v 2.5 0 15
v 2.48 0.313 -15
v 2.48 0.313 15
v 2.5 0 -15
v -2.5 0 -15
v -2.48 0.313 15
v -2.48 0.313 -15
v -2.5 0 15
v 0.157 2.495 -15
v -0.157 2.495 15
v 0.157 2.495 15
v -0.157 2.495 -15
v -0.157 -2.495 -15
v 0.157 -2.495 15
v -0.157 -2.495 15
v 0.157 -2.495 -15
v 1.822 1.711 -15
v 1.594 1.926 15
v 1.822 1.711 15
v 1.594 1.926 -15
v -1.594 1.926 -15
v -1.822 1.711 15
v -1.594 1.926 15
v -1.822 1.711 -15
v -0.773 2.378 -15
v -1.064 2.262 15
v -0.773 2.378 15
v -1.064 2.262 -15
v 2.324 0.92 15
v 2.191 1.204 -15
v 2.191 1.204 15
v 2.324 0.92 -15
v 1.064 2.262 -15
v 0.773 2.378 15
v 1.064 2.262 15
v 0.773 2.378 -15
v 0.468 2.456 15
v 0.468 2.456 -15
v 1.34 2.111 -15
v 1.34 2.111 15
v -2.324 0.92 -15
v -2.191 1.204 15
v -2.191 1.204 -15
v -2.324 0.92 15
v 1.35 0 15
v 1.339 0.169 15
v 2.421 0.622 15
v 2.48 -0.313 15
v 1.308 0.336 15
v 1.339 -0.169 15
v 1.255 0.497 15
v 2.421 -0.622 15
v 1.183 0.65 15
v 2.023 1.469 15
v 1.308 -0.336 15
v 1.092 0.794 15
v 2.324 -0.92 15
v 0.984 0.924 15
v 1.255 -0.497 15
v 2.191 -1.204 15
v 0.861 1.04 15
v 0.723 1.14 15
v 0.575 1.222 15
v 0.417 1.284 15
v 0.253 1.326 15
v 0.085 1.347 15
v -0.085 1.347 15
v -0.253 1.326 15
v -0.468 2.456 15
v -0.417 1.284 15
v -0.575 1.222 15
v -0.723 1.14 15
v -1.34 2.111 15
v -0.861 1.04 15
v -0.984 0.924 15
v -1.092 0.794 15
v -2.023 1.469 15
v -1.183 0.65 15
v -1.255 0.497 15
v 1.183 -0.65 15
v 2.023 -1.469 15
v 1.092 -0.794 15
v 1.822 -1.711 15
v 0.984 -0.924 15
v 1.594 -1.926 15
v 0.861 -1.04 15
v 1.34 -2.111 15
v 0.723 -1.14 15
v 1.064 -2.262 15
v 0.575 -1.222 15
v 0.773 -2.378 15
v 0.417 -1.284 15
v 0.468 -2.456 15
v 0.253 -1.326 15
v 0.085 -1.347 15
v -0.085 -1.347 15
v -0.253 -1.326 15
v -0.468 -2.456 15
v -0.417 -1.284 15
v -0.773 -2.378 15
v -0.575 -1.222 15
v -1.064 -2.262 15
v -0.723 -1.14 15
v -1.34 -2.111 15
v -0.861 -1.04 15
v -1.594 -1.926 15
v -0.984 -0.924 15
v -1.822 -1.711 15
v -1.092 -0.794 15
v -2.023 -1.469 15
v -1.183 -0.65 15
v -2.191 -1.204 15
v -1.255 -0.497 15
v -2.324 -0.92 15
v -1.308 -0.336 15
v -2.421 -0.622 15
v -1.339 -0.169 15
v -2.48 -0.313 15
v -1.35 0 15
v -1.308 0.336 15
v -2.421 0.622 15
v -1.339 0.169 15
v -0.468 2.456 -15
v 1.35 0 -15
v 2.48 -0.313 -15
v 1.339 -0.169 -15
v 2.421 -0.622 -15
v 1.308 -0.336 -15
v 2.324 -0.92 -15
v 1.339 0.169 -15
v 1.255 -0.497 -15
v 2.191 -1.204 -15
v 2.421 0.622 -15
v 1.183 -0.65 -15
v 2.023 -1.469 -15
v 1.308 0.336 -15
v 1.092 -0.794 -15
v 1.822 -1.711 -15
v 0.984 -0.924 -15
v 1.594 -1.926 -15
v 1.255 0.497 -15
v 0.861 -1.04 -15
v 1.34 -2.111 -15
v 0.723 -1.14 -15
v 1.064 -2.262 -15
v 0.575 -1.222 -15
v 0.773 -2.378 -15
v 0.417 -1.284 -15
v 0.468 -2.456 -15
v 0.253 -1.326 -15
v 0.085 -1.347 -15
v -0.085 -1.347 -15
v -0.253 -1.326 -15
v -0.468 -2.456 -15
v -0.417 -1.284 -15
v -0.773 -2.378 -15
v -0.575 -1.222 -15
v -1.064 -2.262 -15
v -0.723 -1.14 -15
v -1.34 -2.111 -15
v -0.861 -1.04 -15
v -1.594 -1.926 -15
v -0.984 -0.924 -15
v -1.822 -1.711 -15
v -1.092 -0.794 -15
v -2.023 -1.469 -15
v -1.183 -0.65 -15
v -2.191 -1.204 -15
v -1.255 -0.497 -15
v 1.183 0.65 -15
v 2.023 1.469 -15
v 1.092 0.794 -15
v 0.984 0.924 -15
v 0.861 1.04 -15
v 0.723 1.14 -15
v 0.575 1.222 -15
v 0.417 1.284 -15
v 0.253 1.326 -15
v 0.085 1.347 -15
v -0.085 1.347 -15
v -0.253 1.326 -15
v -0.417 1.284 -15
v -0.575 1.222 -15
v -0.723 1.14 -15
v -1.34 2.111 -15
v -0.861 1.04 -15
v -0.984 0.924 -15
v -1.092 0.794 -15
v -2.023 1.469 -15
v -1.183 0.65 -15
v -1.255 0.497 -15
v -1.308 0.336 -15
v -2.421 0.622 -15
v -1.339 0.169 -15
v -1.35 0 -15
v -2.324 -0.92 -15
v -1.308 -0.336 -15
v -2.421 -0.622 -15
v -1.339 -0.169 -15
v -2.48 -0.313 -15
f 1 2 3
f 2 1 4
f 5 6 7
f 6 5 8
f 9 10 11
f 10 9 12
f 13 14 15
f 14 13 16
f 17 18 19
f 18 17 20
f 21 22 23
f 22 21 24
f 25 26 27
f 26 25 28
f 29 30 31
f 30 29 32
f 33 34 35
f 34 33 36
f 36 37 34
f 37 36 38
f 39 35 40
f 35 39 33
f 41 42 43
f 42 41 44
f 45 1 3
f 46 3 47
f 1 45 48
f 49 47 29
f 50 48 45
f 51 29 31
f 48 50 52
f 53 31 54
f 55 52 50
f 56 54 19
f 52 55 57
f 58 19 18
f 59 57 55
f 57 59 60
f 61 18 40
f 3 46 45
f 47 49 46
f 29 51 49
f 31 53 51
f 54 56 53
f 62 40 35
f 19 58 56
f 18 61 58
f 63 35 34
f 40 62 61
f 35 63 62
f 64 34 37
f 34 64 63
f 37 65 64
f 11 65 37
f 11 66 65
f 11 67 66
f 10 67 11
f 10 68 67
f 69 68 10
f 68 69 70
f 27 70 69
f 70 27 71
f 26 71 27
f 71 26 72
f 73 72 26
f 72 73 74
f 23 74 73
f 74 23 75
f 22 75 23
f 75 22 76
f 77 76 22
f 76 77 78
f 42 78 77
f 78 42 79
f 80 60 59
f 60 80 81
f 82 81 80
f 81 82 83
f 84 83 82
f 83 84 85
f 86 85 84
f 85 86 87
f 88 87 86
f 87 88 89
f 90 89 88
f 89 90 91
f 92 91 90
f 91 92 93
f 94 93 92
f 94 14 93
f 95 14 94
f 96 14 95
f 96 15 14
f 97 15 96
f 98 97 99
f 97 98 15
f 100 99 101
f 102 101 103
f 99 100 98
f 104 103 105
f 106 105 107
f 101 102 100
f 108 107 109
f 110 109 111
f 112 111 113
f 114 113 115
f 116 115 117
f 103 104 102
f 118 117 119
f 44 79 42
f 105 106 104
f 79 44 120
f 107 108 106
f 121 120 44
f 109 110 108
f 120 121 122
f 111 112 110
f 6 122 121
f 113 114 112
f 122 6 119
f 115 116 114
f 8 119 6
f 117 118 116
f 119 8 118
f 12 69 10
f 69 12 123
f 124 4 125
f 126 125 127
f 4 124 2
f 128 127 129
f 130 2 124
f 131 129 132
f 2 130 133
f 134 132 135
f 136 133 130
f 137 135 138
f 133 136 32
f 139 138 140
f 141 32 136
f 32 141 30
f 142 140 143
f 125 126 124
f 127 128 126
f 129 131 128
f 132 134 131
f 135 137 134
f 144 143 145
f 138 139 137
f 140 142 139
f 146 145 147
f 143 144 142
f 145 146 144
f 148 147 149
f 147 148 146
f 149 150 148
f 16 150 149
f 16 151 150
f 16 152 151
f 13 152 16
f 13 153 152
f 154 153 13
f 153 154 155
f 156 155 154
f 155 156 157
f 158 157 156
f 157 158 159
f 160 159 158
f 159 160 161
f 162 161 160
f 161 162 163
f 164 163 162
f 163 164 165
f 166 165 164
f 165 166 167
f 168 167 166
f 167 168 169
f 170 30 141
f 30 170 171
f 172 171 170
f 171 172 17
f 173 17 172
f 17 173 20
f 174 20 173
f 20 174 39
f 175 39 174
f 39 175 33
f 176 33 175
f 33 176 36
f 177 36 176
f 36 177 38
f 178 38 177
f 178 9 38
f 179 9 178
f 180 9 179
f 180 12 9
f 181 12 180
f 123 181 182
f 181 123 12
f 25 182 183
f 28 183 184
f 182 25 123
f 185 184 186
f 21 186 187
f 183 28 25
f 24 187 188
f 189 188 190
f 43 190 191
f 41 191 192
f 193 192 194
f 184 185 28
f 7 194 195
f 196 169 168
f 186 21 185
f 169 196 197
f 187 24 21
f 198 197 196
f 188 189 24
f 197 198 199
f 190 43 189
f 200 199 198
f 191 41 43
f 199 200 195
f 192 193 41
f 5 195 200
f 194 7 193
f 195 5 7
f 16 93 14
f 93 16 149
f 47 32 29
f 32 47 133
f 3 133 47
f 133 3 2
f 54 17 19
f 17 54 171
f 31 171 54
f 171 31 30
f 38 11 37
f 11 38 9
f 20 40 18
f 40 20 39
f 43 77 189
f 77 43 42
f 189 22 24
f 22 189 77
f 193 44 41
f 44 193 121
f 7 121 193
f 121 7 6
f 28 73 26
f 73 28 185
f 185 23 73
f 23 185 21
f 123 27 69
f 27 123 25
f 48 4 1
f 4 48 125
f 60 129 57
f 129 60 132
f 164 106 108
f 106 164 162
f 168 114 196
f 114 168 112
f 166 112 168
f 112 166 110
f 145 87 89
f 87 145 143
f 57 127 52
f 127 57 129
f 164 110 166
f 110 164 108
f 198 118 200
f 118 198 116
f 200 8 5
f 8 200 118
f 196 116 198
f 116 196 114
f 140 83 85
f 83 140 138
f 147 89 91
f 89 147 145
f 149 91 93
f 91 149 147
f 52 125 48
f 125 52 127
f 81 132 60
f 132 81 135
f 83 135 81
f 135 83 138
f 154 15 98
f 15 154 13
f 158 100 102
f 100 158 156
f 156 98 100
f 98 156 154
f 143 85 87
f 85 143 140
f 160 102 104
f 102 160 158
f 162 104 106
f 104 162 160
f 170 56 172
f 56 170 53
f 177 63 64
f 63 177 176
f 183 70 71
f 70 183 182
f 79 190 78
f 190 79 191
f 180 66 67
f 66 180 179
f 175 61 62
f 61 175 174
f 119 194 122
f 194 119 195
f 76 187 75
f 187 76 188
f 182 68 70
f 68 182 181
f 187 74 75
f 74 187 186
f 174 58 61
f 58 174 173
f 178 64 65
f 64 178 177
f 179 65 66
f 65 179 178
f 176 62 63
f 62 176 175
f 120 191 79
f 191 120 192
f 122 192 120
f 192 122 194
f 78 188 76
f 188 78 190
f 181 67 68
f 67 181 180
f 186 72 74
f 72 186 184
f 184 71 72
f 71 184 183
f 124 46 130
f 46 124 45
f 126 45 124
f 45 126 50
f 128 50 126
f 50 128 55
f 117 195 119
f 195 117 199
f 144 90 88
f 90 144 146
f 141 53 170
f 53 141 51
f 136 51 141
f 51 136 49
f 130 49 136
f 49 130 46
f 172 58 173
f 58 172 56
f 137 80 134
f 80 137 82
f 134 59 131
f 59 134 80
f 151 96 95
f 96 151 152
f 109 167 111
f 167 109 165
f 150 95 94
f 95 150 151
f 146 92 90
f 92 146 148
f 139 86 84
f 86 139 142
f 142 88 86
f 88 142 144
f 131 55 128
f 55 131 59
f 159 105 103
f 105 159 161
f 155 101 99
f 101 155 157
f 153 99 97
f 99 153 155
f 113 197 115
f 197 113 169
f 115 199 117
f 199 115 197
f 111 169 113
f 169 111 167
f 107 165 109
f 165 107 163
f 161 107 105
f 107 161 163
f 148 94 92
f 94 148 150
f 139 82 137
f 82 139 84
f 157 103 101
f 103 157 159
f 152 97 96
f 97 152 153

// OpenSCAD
$fn = 50;


difference() {
	union() {
		translate(v = [0, 0, -15.0000000000]) {
			cylinder(h = 30, r = 2.5000000000);
		}
	}
	union() {
		translate(v = [0, 0, -100.0000000000]) {
			cylinder(h = 200, r = 1.3500000000);
		}
	}
}
